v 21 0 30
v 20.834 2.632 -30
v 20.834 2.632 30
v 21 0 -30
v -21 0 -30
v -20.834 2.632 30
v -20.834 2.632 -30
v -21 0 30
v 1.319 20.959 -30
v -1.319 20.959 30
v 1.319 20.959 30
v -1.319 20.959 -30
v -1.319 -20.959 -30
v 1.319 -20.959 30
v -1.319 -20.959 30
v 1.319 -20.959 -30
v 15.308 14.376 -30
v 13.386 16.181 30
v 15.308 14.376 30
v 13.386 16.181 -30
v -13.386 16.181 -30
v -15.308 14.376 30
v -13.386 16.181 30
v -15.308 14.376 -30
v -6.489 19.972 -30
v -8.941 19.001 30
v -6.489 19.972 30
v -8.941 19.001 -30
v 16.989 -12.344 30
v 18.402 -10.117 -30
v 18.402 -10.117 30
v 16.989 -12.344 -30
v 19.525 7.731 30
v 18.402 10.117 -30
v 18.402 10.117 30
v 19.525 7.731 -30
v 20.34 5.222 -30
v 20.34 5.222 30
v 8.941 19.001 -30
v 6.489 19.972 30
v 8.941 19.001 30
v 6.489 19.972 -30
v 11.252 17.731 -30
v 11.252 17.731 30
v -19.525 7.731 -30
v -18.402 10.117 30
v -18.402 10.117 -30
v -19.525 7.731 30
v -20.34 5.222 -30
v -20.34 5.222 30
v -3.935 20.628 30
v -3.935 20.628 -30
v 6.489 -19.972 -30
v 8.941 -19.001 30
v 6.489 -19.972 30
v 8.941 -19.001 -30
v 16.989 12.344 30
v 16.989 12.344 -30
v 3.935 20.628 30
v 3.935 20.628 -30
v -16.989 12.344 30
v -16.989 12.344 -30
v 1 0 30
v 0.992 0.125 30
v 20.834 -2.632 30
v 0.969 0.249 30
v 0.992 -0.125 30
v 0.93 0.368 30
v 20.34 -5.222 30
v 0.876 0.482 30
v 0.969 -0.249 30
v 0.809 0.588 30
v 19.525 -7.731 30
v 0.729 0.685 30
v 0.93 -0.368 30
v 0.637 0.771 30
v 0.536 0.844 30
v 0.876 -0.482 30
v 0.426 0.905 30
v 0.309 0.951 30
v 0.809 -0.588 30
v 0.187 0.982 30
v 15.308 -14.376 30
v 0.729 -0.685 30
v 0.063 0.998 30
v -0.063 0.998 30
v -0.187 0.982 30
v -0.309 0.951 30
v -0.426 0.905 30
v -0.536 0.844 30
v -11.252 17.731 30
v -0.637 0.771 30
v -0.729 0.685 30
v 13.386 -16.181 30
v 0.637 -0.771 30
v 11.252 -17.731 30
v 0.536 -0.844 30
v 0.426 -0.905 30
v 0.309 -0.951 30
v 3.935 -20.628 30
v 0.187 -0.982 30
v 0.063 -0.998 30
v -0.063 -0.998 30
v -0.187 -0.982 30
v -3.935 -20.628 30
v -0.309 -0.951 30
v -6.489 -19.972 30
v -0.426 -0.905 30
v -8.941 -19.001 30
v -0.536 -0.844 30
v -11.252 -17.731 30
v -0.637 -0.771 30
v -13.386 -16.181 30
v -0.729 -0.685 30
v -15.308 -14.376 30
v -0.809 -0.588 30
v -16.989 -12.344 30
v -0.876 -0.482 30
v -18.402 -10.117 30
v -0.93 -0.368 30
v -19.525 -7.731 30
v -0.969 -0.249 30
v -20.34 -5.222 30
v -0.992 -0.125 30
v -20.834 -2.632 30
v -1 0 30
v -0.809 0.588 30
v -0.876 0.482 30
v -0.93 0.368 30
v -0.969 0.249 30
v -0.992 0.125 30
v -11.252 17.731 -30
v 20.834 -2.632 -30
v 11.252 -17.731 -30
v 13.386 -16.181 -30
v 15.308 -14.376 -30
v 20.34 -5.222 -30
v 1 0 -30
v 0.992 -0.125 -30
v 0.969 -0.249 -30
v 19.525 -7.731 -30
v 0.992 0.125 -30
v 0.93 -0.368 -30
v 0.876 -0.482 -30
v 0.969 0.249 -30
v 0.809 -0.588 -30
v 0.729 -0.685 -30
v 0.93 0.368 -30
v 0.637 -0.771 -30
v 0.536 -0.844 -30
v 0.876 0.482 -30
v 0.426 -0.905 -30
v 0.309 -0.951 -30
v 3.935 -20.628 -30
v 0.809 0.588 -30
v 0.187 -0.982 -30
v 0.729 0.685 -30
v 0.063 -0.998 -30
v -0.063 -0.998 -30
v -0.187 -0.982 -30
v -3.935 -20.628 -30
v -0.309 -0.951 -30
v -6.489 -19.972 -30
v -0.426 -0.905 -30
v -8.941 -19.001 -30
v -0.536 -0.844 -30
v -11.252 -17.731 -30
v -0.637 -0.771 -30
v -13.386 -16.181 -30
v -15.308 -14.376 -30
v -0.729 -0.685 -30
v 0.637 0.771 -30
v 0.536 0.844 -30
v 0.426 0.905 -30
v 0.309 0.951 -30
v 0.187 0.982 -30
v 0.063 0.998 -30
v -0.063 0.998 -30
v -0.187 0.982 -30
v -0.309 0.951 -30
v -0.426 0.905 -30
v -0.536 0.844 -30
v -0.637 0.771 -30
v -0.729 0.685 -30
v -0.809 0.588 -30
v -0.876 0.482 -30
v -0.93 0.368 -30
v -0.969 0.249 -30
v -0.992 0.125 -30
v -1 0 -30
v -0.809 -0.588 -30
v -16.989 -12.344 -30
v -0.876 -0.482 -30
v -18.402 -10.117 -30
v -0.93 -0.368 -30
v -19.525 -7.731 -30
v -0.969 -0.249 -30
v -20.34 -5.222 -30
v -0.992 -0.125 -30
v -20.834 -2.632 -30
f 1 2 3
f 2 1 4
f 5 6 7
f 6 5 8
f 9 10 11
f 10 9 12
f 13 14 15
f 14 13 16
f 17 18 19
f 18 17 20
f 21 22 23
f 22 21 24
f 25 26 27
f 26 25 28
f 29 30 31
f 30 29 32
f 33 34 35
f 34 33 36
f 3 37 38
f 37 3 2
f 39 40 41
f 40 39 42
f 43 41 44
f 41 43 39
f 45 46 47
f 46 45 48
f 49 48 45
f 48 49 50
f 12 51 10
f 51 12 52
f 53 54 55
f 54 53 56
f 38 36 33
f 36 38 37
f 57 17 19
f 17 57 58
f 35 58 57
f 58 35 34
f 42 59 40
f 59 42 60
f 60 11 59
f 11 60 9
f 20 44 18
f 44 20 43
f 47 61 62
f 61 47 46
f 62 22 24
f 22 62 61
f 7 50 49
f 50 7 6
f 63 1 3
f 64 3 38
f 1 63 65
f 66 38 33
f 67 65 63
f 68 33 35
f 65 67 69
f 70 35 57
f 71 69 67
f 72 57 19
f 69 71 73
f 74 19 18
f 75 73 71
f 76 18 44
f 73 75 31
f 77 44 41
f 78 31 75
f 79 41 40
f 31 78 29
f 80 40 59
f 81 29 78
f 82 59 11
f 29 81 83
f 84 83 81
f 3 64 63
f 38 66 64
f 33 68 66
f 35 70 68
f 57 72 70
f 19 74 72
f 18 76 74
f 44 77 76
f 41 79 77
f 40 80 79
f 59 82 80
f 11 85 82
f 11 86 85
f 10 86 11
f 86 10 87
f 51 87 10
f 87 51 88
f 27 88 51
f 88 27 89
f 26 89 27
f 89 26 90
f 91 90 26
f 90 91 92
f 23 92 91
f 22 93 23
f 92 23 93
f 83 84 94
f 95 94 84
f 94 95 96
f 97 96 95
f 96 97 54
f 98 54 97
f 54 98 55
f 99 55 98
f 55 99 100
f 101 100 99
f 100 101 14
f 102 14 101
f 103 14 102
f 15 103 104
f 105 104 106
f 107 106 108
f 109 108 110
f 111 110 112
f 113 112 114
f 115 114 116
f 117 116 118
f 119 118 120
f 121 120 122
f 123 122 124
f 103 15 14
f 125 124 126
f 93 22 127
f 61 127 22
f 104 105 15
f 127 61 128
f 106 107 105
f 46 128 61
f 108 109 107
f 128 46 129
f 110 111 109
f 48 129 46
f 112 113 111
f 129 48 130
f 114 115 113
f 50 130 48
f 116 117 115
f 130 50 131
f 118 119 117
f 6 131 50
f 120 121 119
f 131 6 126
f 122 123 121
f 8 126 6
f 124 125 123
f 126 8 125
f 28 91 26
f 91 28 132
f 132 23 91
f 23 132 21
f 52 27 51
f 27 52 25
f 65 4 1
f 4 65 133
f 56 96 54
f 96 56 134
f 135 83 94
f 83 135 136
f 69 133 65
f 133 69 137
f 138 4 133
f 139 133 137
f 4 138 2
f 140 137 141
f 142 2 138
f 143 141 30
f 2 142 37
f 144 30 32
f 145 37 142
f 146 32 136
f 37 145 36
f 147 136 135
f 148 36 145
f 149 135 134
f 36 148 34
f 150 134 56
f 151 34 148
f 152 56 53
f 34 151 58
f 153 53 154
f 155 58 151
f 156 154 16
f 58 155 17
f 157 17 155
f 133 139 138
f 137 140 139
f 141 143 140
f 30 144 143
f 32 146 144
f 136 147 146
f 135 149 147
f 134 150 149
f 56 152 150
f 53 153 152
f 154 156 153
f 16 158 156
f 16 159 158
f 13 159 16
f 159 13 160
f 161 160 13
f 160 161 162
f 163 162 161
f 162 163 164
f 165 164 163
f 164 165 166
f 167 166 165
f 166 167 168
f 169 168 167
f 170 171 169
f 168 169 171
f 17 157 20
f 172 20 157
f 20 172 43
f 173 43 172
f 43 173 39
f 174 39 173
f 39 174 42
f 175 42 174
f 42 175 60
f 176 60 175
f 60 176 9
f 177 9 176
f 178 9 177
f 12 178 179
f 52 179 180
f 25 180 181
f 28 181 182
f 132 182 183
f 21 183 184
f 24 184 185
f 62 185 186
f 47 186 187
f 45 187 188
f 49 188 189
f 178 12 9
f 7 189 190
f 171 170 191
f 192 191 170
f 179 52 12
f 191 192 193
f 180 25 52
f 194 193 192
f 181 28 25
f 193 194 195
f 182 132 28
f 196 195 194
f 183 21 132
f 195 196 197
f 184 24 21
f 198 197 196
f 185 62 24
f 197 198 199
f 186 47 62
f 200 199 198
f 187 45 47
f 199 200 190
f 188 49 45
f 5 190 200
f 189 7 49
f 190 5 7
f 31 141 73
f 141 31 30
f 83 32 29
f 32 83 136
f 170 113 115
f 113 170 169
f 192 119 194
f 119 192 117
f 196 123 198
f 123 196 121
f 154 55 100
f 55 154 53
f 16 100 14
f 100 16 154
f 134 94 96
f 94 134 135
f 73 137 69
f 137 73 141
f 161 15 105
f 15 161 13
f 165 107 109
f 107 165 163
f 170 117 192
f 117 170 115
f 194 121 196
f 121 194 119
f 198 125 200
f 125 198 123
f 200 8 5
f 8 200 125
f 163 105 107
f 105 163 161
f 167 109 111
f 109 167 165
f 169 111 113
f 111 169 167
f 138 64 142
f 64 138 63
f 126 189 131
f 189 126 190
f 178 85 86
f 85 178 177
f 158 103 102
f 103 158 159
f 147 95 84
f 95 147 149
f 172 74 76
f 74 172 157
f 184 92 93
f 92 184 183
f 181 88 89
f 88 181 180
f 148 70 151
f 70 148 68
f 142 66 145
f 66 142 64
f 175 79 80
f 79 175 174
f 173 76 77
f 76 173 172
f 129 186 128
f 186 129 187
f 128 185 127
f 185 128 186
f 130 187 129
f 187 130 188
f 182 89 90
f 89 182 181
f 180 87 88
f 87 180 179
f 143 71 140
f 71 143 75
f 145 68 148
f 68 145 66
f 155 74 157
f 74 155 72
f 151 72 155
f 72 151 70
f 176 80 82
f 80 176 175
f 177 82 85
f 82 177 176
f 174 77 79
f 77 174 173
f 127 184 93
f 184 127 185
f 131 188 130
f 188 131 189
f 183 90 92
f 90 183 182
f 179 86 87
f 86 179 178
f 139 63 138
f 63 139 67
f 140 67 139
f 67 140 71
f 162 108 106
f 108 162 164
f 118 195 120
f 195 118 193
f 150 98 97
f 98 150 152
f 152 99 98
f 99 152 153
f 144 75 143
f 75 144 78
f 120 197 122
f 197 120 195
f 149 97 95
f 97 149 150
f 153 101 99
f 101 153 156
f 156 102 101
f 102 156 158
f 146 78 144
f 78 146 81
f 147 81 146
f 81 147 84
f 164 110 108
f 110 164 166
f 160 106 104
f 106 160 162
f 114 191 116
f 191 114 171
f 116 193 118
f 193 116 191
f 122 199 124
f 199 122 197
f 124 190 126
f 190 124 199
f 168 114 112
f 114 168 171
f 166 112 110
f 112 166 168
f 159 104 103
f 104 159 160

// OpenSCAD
$fn = 50;


difference() {
	union() {
		translate(v = [0, 0, -30.0000000000]) {
			cylinder(h = 60, r = 21.0000000000);
		}
	}
	union() {
		translate(v = [0, 0, -100.0000000000]) {
			cylinder(h = 200, r = 1.0000000000);
		}
	}
}
